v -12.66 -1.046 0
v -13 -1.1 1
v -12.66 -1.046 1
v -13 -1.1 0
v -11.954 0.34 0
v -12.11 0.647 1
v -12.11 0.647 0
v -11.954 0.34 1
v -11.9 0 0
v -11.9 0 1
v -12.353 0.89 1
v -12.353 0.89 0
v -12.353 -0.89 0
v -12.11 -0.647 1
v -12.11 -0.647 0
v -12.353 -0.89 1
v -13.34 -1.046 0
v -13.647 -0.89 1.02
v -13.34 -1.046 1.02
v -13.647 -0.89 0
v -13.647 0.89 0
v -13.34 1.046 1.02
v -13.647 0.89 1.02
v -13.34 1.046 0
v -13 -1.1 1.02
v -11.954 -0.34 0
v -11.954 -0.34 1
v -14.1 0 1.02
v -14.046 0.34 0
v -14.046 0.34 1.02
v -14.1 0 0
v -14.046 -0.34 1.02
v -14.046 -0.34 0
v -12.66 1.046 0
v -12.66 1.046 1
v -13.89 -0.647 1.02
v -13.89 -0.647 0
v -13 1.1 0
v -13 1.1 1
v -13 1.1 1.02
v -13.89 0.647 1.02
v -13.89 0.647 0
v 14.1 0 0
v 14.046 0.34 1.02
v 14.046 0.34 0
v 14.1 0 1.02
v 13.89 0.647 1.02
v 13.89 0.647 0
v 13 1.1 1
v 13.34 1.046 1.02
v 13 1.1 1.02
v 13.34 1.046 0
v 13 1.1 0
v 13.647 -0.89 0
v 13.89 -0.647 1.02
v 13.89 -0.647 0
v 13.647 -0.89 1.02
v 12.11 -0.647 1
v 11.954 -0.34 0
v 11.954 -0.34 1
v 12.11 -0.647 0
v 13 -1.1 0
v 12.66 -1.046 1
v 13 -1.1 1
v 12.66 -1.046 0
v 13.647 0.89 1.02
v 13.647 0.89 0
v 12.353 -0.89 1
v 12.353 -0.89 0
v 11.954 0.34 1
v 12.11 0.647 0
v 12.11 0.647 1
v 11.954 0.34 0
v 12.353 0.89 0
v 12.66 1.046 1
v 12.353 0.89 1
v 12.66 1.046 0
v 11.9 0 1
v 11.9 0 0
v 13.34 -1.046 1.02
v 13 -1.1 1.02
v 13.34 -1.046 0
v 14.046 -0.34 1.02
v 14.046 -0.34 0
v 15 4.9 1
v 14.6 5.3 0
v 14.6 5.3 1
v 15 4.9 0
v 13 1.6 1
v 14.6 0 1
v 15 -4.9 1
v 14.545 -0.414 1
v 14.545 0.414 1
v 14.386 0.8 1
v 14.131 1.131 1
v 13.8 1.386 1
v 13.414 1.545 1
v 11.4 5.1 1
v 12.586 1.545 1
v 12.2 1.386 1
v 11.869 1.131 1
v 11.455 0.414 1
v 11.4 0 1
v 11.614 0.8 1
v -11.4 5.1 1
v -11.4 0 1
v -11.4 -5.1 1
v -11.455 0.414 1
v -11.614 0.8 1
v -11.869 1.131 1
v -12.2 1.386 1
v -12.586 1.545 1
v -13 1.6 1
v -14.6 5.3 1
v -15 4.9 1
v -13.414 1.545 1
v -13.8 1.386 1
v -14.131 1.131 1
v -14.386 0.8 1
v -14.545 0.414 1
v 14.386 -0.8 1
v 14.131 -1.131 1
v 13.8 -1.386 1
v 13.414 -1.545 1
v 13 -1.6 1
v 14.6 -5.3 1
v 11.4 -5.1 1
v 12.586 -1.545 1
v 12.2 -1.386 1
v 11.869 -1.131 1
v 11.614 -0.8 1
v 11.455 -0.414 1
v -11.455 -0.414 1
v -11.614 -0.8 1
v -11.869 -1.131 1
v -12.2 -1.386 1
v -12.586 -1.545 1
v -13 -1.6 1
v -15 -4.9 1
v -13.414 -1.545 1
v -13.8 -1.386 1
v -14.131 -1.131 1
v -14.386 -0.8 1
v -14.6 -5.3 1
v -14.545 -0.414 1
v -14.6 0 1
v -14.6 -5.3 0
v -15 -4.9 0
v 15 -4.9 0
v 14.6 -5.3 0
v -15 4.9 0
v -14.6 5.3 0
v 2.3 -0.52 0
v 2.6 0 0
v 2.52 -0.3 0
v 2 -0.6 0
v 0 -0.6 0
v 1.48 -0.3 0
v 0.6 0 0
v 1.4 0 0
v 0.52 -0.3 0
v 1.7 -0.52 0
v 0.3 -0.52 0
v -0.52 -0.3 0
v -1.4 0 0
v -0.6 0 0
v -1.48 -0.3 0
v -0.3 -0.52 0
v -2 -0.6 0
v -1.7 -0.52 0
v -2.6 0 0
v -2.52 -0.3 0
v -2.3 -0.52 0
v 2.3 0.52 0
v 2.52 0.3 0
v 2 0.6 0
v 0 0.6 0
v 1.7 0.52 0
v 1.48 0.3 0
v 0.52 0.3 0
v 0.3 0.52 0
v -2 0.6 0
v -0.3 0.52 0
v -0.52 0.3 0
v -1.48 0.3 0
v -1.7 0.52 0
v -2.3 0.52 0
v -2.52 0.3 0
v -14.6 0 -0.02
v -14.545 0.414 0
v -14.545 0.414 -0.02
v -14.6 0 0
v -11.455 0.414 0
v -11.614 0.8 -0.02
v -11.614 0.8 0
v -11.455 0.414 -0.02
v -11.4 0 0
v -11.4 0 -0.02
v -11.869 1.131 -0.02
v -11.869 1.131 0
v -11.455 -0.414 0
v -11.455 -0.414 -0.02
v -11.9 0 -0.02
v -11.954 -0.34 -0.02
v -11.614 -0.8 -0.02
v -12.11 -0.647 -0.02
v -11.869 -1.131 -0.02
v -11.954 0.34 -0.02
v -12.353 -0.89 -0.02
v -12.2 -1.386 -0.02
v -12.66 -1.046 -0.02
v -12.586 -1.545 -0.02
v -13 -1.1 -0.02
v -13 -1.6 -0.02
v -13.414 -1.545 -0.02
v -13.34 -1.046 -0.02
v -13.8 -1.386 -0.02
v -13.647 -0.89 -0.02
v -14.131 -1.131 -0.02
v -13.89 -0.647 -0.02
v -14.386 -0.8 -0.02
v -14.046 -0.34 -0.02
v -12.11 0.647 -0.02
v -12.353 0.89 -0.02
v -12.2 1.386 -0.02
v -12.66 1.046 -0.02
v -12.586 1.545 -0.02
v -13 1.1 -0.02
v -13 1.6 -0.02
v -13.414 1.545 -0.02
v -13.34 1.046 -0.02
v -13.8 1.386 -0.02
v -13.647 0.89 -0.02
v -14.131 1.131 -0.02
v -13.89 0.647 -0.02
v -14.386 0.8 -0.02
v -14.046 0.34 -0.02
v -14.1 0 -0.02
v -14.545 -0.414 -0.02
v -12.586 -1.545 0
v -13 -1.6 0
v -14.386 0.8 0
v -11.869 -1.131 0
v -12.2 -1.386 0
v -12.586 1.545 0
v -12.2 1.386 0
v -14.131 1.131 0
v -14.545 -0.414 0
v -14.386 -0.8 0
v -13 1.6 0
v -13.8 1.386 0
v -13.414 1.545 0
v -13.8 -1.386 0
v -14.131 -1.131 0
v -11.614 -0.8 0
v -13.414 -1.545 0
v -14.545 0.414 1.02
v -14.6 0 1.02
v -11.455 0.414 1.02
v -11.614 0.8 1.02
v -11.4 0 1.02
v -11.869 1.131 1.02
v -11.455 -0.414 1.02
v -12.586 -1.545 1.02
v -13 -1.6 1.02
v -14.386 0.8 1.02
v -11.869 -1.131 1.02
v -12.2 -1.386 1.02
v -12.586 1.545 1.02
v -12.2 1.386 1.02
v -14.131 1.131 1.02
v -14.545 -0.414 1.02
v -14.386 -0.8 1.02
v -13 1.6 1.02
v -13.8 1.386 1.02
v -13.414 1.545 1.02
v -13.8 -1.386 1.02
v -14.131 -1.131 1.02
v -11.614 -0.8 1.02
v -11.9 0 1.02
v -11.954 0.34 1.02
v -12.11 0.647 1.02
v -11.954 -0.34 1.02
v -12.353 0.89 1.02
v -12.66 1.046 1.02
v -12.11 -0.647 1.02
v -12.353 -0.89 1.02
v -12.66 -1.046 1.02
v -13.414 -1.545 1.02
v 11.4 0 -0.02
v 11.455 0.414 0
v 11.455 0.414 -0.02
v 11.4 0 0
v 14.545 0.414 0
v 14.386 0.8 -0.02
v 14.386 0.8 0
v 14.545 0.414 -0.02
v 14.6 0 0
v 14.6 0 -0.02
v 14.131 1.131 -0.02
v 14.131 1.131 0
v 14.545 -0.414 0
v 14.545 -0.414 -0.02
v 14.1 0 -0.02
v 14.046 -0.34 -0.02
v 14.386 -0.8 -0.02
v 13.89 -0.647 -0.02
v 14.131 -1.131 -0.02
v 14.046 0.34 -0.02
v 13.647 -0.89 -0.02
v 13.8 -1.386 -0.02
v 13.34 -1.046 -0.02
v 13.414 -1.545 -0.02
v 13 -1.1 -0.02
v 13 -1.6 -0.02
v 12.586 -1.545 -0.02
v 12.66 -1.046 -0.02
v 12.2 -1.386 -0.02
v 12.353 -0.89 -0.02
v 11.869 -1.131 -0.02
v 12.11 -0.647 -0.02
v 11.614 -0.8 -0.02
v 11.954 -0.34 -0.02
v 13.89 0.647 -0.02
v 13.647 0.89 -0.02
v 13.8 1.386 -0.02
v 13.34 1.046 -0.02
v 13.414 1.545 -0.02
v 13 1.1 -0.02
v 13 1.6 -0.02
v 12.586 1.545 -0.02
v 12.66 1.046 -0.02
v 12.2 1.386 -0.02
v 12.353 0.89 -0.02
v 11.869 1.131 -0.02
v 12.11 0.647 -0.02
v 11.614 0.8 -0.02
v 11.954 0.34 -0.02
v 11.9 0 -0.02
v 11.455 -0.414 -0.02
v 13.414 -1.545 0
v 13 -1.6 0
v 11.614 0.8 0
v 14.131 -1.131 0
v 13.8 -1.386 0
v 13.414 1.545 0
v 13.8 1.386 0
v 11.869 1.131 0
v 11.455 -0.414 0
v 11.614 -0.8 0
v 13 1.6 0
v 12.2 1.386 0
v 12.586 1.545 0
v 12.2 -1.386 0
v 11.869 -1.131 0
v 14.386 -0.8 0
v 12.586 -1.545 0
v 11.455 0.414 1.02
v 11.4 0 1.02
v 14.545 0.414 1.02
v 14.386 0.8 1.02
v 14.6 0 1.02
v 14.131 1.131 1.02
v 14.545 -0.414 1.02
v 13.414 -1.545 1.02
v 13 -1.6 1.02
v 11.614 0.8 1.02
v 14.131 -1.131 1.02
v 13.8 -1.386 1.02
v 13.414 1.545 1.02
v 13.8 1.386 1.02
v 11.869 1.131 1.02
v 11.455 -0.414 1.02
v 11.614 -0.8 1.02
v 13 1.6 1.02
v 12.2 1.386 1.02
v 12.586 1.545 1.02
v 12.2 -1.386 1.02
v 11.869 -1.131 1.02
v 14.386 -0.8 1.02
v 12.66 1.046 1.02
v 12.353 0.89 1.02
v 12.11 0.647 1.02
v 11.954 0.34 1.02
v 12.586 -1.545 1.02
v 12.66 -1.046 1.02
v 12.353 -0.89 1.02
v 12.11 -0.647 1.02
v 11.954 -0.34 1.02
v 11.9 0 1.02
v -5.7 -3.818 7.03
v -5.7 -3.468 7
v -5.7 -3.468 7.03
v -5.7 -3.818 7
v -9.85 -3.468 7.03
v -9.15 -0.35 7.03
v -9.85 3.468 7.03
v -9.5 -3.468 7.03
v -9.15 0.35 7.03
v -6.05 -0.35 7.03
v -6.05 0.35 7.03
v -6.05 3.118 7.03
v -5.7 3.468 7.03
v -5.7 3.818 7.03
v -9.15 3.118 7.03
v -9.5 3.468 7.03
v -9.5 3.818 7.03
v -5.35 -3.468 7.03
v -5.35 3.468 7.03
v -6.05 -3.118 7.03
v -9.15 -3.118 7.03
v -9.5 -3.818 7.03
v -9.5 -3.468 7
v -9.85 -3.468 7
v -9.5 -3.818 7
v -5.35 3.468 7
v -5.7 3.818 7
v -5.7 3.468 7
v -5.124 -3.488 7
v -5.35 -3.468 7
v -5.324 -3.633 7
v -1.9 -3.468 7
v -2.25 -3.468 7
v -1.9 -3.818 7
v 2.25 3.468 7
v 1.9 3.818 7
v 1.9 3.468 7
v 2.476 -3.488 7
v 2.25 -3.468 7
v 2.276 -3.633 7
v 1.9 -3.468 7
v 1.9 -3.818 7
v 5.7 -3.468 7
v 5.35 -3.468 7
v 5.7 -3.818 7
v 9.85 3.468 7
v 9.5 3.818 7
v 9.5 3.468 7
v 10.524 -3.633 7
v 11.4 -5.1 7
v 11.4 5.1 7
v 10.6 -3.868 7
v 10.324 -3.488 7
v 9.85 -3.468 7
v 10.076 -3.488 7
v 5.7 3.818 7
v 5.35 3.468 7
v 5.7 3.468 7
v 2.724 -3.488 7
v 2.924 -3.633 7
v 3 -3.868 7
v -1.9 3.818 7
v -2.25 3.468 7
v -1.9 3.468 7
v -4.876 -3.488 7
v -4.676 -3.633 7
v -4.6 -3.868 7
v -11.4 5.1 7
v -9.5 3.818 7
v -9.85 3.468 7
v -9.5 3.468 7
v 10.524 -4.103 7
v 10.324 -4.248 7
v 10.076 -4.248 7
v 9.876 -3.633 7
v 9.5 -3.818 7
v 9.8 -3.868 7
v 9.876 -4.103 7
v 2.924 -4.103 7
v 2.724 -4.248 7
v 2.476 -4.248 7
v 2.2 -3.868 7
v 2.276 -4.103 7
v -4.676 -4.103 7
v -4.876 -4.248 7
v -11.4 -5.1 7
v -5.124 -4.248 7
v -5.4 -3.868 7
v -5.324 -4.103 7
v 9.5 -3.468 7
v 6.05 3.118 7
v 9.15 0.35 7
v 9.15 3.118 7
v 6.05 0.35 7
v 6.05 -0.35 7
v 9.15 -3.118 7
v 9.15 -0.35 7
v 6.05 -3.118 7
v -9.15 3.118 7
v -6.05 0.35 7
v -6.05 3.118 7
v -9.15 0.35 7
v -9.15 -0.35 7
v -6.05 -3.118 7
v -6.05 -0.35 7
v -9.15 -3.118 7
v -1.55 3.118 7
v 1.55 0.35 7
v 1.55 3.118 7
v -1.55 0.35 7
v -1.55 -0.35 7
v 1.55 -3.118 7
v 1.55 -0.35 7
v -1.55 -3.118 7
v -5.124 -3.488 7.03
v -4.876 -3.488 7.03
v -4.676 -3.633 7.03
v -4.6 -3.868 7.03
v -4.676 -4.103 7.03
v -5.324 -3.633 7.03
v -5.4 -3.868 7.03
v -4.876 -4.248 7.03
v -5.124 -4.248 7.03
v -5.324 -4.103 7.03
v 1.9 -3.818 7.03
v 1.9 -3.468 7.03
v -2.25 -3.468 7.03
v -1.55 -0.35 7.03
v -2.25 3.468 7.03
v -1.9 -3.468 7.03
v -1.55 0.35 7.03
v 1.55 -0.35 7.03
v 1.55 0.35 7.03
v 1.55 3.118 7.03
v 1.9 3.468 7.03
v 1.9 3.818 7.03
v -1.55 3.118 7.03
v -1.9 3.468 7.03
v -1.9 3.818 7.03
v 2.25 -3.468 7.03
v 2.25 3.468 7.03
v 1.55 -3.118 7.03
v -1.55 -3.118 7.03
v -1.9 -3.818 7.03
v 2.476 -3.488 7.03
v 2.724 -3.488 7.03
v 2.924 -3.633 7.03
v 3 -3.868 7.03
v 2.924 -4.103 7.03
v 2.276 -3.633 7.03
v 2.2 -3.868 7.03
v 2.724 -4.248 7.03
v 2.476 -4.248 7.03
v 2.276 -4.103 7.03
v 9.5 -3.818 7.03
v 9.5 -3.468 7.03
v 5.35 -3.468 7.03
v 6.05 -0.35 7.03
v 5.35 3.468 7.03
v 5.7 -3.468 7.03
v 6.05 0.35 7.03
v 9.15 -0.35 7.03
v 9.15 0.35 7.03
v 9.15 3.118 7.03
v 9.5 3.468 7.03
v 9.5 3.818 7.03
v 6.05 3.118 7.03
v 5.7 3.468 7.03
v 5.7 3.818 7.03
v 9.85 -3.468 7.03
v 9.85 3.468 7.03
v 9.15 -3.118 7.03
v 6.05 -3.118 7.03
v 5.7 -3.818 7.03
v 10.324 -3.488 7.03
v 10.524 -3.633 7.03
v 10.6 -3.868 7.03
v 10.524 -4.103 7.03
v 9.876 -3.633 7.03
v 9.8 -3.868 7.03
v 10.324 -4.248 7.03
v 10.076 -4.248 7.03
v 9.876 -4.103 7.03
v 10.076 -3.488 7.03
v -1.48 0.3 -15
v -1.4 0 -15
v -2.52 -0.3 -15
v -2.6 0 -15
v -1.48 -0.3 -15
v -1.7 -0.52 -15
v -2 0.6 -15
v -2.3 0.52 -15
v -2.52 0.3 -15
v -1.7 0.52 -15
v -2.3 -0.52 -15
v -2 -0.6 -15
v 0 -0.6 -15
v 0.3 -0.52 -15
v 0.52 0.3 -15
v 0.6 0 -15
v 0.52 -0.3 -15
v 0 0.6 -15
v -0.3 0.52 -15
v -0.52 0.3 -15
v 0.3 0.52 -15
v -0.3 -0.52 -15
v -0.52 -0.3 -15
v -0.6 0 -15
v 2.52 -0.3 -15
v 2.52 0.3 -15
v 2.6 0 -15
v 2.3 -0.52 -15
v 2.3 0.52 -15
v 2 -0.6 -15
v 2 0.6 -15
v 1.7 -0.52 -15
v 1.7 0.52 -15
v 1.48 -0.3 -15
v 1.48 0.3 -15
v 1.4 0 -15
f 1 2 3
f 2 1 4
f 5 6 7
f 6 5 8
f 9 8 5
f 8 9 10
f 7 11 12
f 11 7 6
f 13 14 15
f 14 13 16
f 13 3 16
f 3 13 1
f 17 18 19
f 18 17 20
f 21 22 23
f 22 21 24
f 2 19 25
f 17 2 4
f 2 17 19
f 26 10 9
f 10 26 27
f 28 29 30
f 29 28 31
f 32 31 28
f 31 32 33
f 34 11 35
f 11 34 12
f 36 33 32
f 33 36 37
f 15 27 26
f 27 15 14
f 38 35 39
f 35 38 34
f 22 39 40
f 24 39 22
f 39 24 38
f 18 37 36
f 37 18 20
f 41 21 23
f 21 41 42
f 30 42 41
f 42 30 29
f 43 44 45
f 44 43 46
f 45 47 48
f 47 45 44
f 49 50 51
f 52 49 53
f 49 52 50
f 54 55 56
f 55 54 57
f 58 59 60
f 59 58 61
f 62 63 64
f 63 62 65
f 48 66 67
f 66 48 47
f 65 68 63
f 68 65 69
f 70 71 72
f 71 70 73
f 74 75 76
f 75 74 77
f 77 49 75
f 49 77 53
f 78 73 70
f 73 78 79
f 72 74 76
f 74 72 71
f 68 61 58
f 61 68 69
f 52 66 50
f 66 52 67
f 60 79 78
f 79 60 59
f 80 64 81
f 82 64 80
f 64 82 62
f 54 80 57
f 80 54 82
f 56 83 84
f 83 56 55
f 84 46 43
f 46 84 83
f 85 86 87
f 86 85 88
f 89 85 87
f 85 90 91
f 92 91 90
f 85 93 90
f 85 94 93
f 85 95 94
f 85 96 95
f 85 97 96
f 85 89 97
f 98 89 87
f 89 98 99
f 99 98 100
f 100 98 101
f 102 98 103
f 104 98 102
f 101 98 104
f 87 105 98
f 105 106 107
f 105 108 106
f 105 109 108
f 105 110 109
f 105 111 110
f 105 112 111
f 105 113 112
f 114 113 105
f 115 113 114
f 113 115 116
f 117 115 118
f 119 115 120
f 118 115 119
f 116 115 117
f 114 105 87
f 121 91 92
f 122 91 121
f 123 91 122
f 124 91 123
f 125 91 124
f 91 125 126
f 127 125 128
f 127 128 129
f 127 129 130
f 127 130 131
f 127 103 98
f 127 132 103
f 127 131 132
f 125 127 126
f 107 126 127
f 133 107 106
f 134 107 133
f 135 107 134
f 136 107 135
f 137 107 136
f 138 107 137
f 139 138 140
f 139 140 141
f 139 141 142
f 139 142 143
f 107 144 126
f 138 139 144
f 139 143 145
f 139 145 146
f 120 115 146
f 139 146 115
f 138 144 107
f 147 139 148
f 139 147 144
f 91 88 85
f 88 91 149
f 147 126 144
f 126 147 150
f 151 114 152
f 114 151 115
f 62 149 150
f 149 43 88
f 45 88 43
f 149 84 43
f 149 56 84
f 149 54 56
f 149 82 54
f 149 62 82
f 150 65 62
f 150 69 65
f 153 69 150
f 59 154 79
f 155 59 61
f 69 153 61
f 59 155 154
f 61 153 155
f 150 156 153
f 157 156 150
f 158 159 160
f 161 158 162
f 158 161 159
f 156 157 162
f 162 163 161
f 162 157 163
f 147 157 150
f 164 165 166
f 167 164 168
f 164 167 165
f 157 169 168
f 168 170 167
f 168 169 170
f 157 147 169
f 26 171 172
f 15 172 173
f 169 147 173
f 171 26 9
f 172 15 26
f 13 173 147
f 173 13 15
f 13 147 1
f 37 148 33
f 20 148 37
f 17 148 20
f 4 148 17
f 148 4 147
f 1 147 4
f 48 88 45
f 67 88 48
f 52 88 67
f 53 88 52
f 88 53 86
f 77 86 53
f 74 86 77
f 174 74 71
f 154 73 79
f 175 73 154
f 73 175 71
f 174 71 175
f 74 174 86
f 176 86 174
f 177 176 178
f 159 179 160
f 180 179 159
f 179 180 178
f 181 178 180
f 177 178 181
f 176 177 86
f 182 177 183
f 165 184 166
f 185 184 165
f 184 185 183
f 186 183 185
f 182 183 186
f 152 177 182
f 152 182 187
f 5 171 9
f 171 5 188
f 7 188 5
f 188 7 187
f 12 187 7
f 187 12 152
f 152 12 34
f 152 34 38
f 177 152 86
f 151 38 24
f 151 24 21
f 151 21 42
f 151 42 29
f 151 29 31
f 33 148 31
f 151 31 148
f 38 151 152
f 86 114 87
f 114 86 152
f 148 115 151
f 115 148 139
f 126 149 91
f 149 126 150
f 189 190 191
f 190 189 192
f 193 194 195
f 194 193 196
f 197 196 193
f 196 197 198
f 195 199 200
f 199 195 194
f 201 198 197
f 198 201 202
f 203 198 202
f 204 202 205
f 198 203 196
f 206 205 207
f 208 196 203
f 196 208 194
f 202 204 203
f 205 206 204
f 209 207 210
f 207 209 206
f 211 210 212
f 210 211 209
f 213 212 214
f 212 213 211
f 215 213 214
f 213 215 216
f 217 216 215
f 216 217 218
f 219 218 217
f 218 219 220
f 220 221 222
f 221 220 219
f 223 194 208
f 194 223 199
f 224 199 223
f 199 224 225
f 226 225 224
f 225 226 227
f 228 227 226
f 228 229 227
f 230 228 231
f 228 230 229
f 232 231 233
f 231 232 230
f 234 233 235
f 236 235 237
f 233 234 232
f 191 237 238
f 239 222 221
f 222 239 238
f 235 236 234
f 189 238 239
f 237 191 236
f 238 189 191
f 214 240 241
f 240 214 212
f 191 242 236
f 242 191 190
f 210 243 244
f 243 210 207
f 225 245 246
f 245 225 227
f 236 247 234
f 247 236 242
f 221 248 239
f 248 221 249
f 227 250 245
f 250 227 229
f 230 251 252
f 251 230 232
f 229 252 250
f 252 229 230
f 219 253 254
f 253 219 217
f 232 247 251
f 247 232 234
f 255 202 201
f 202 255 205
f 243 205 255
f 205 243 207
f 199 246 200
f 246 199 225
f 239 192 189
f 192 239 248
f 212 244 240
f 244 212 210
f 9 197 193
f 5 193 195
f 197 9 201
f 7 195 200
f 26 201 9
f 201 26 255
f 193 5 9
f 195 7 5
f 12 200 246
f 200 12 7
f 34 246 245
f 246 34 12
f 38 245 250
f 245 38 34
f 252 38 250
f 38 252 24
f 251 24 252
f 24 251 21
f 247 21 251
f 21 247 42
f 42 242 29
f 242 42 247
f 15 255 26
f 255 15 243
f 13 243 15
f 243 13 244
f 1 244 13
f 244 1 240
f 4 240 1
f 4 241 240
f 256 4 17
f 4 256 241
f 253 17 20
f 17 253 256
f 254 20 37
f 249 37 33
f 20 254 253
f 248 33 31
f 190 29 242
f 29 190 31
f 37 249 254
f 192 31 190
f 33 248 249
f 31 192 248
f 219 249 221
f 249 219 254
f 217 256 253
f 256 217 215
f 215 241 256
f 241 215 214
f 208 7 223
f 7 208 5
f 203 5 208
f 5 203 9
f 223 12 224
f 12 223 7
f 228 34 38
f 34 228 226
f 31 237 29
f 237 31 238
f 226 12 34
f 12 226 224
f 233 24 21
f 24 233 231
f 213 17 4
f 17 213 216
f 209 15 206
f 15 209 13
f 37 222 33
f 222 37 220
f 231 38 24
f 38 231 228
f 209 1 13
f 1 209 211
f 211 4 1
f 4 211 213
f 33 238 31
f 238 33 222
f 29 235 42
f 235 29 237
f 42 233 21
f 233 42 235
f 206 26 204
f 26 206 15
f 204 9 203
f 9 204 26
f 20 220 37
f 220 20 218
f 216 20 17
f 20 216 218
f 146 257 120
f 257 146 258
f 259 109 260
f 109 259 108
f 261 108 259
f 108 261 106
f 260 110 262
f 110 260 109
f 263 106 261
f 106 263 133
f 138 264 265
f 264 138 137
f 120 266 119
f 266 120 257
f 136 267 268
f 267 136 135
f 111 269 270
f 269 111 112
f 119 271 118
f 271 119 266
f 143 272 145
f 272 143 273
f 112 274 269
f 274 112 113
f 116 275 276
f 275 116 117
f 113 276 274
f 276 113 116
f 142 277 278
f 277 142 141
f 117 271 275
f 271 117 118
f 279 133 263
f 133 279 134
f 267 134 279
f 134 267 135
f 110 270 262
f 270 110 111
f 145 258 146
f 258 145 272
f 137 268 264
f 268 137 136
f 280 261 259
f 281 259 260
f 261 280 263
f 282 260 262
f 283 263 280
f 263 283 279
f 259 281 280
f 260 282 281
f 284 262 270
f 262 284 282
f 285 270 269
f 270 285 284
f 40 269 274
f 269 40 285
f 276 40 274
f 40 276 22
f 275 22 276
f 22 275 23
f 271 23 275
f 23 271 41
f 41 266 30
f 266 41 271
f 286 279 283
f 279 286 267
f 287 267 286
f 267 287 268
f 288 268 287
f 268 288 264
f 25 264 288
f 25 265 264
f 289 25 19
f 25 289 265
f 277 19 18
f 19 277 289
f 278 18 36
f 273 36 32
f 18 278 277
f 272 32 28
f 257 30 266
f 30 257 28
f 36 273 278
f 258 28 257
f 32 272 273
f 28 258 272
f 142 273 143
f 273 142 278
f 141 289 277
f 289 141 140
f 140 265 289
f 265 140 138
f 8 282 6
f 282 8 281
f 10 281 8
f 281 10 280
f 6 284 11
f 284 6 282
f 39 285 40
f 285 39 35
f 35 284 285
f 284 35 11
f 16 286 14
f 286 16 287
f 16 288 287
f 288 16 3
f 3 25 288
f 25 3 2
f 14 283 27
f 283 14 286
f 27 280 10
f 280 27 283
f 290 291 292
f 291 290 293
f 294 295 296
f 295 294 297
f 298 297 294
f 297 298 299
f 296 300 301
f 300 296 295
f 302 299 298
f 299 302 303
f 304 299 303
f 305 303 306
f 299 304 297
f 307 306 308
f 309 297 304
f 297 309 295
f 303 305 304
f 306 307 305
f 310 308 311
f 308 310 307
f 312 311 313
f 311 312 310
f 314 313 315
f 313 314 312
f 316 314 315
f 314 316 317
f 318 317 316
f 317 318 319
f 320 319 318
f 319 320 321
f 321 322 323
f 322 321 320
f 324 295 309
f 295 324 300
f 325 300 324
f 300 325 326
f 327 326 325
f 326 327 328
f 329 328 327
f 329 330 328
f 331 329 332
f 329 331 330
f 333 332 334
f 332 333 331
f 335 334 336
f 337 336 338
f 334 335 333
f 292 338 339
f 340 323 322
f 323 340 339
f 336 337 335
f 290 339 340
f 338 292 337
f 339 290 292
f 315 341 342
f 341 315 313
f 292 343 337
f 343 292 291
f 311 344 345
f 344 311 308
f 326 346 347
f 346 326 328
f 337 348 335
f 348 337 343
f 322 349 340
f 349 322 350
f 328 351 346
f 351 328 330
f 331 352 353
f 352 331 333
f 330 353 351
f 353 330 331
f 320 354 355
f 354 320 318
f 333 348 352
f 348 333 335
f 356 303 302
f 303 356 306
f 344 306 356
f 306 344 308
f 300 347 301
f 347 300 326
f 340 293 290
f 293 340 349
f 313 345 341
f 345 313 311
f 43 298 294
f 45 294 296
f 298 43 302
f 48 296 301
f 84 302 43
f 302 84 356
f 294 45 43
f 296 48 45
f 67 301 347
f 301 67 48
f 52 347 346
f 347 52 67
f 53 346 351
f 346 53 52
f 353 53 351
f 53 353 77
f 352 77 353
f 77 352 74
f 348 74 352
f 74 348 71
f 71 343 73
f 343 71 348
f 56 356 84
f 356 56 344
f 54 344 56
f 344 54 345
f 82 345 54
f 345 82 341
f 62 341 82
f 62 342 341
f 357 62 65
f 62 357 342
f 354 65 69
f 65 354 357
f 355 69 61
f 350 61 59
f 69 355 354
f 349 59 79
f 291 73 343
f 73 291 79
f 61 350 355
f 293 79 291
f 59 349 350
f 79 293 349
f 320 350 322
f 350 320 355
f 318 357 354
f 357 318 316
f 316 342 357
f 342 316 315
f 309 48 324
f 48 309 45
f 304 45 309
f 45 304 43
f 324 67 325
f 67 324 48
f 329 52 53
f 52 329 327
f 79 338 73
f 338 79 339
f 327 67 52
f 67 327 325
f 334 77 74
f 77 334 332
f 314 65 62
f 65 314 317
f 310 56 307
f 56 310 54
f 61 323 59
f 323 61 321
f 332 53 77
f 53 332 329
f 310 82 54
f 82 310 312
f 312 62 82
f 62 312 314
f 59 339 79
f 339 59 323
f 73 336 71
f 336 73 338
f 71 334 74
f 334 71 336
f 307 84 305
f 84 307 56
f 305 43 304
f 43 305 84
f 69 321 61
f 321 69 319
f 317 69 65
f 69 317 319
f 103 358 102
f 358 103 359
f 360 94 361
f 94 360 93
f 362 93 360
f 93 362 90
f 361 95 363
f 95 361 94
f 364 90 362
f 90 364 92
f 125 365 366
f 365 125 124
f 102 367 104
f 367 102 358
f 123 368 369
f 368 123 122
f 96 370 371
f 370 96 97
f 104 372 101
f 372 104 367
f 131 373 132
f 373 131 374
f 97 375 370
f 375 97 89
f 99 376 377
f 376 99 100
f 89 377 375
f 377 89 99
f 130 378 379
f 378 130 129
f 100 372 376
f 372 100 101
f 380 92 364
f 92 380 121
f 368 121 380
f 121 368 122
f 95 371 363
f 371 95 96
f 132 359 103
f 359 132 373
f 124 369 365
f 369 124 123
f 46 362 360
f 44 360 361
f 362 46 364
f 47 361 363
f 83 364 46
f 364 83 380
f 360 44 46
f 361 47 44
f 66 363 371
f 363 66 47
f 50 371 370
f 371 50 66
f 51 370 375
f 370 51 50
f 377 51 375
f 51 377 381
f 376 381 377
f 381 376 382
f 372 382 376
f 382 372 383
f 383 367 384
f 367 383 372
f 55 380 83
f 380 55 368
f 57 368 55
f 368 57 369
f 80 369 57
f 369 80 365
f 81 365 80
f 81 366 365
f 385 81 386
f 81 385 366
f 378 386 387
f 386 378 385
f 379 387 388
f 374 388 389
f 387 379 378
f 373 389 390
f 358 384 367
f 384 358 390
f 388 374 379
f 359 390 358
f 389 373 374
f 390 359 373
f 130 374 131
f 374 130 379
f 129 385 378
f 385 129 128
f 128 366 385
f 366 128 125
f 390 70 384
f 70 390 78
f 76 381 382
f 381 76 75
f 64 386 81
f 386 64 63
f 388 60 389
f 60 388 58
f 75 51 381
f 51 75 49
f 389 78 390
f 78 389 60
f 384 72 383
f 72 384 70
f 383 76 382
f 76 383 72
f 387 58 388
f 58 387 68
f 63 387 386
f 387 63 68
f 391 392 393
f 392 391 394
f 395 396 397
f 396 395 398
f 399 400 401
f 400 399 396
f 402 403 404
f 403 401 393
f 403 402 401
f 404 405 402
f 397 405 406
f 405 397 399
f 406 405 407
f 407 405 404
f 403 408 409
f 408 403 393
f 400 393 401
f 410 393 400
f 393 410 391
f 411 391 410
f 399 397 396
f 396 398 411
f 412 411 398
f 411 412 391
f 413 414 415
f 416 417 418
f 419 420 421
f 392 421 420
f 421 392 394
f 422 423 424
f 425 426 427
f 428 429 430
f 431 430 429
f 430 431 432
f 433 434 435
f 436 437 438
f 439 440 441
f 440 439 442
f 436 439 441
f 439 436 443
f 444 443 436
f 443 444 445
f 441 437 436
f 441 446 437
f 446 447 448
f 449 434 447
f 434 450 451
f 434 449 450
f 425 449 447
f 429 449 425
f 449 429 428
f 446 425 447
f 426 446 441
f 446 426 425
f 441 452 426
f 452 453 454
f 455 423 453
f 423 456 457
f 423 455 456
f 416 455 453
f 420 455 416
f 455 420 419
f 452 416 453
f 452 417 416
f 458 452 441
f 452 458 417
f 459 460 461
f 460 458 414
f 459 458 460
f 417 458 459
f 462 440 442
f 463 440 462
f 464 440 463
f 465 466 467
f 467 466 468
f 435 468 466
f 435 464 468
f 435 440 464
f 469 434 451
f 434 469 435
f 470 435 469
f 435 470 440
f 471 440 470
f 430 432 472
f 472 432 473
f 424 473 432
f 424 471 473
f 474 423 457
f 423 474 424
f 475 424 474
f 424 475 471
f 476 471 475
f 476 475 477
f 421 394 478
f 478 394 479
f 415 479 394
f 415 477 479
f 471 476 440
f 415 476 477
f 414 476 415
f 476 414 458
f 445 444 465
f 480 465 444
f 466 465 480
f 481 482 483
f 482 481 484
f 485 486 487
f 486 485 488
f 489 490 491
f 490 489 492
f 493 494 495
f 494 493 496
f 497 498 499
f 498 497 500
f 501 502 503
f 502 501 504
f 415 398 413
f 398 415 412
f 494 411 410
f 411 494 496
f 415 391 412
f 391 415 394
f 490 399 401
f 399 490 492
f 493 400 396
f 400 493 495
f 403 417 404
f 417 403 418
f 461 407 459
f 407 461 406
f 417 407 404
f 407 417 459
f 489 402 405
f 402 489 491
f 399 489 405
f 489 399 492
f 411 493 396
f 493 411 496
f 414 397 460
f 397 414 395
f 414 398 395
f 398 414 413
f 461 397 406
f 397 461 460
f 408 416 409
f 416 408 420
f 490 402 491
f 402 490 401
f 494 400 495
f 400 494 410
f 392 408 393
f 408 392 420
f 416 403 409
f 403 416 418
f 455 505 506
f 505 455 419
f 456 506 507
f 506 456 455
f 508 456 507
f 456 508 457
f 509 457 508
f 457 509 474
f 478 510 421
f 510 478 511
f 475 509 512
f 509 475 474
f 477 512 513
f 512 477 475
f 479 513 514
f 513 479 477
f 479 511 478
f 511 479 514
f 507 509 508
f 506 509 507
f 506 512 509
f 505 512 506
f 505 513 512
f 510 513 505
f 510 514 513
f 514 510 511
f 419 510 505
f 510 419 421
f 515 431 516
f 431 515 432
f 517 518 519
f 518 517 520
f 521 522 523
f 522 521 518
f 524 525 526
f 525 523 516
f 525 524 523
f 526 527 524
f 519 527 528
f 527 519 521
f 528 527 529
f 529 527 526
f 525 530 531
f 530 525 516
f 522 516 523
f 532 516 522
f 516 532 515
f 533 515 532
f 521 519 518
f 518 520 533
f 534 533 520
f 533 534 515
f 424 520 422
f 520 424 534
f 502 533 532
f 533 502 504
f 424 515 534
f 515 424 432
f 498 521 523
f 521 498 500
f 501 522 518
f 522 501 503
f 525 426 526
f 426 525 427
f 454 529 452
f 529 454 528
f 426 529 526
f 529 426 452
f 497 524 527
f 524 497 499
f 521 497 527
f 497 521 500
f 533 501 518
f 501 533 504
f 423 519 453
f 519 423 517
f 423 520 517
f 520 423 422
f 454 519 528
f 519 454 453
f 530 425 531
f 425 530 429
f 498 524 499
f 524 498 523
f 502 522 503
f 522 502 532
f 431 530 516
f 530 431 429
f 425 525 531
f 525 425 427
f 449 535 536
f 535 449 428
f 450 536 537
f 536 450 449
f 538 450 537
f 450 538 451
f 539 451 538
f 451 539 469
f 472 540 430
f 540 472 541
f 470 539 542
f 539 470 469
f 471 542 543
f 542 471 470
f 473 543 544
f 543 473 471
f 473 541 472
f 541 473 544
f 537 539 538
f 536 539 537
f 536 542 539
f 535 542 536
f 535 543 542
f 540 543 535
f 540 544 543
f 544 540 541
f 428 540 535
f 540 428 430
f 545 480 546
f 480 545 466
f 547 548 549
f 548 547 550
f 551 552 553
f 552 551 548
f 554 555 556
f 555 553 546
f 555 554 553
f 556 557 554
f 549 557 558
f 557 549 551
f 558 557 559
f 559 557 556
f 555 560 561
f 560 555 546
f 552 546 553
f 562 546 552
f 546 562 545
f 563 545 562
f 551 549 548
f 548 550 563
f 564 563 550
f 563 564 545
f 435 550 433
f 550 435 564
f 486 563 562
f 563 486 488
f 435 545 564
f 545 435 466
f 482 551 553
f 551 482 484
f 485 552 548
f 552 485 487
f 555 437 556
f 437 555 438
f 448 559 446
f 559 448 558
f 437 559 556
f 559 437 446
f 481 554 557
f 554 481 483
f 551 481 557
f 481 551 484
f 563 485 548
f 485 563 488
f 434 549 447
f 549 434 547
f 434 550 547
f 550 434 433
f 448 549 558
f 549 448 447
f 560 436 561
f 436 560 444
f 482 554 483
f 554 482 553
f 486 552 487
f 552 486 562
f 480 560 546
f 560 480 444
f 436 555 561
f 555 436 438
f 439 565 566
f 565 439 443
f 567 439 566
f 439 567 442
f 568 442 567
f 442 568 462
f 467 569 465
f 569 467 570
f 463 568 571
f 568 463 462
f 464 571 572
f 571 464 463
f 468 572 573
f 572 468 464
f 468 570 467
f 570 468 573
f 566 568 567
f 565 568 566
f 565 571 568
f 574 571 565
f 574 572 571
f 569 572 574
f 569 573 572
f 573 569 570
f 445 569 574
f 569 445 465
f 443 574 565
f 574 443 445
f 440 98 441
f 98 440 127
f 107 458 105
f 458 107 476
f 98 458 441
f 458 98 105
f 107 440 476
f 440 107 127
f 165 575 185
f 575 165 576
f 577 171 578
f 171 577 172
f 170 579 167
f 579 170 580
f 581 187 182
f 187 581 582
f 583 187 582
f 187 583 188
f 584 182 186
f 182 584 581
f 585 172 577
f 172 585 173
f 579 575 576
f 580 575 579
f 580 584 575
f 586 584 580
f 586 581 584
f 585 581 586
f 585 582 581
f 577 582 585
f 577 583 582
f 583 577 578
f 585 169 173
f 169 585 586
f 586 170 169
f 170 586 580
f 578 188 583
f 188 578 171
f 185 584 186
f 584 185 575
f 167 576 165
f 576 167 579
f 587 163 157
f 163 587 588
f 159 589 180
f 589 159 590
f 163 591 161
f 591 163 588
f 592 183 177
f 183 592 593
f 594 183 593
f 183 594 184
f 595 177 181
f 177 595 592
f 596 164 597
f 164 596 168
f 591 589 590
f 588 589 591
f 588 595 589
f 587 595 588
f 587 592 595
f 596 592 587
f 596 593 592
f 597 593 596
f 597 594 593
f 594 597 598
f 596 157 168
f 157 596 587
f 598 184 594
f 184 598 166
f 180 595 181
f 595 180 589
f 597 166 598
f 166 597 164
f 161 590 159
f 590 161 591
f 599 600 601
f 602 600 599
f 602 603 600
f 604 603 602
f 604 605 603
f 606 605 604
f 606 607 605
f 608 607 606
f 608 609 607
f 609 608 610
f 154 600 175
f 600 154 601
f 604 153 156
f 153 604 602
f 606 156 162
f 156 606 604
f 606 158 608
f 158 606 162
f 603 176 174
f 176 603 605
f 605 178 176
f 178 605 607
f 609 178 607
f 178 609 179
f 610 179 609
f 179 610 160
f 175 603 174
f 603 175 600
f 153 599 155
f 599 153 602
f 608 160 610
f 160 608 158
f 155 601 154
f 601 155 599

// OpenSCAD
// file: ../../lib/display.scad
// partbin - shared pieces for display modules: glass panels, LED matrix
// blocks, 7-segment displays, the LCD1602 frame, a window cutout for the
// case and a holder that grips a board by its edges.
//
//   use <../lib/display.scad>
//
// Same convention as every module: parts up (the display faces +z), the
// board centred on x/y, its underside at z = 0.

use <parts.scad>

function c_glass() = [0.04, 0.04, 0.06];
function c_screen() = [0.08, 0.10, 0.16];

// ------------------------------------------------------------ glass panel
// A TFT/OLED glass panel lying on the board: outline [x, y], thickness t,
// with the active (lit) area [x, y] centred at `off` from the panel centre.
module glass_panel(outline, t = 2.4, active, off = [0, 0]) {
    color(c_glass()) translate([-outline[0] / 2, -outline[1] / 2, 0]) cube([outline[0], outline[1], t]);
    color(c_screen()) translate([off[0] - active[0] / 2, off[1] - active[1] / 2, t]) cube([active[0], active[1], 0.02]);
}

// ------------------------------------------------------------- LED matrix
// An 8 x 8 LED matrix block (1088AS-style): `size` square, h tall, with
// the 64 round LEDs on top.
module led_matrix(size = 32, h = 7, led = [0.55, 0.06, 0.06], body = [0.12, 0.12, 0.12]) {
    p = size / 8;
    color(body) translate([-size / 2, -size / 2, 0]) cube([size, size, h]);
    color(led) for (i = [0:7], j = [0:7])
        translate([-size / 2 + p / 2 + i * p, -size / 2 + p / 2 + j * p, h]) cylinder(d = p * 0.75, h = 0.05, $fn = 16);
}

// ------------------------------------------------------- 7-segment digits
// A block of `digits` 7-segment digits, `size` [x, y], h tall.
module seg7_display(digits = 4, size = [30, 14], h = 7.2, colon = true) {
    color([0.92, 0.92, 0.92]) translate([-size[0] / 2, -size[1] / 2, 0]) cube([size[0], size[1], h - 0.05]);
    color([0.12, 0.12, 0.12]) translate([-size[0] / 2, -size[1] / 2, h - 0.05]) cube([size[0], size[1], 0.05]);
    dw = size[0] / digits;
    sh = size[1] * 0.68;  sw = dw * 0.5;  st = 0.7;
    color([0.35, 0.05, 0.05]) for (d = [0:digits - 1]) translate([-size[0] / 2 + dw * (d + 0.5), 0, h]) {
        for (y = [-1, 0, 1]) translate([-sw / 2, y * sh / 2 - st / 2, 0]) cube([sw, st, 0.03]);       // a g d
        for (x = [-1, 1], y = [-1, 1]) translate([x * sw / 2 - st / 2, y < 0 ? -sh / 2 : 0, 0]) cube([st, sh / 2, 0.03]);
        translate([sw / 2 + 0.7, -sh / 2 - 0.4, 0]) cylinder(d = 0.8, h = 0.03, $fn = 10);         // dot
    }
    if (colon) color([0.35, 0.05, 0.05]) for (y = [-1.6, 1.6]) translate([0, y, h]) cylinder(d = 0.8, h = 0.03, $fn = 10);
}

// ----------------------------------------------------------------- windows
// A rectangular window in the lid above a display. The lid's inside face is
// at z0 and it is `depth` thick; `size` [x, y] is the opening at the inside,
// and it widens outwards by `flare` mm on each side (0 = straight walls).
module rect_window(x, y, z0, depth, size, flare = 0, r = 0.5) {
    translate([x, y, z0 - 0.5]) hull() {
        linear_extrude(0.01) offset(r) offset(-r) square(size, center = true);
        translate([0, 0, depth + 1.0]) linear_extrude(0.01)
            offset(r + flare * (depth + 1) / depth) offset(-r) square(size, center = true);
    }
}

// ----------------------------------------------------------------- holder
// For boards without mounting holes: a ledge under the board's edges (`h`
// tall, so parts underneath have room), low walls around it with gaps to
// get a fingernail in, and `top` mm of wall above the board's top.
// The display is meant to be pressed against the lid from behind, so the
// walls only locate it. Add it to the case floor.
module edge_holder(size, t, h = 6, ledge = 1.5, wall = 1.2, clear = 0.3, top = 0.8) {
    x0 = size[0] / 2 + clear;  y0 = size[1] / 2 + clear;
    difference() {
        translate([-x0 - wall, -y0 - wall, -h]) cube([2 * (x0 + wall), 2 * (y0 + wall), h + t + top]);
        // room for the board
        translate([-x0, -y0, 0]) cube([2 * x0, 2 * y0, t + top + 1]);
        // room under it, inside the ledge
        translate([-x0 + ledge, -y0 + ledge, -h - 1]) cube([2 * (x0 - ledge), 2 * (y0 - ledge), h + 2]);
        // fingernail gaps in the middle of each side, down to the board's underside
        for (a = [0, 90]) rotate([0, 0, a]) {
            g = min(8, (a == 0 ? size[0] : size[1]) / 4);
            translate([-g / 2, -50, 0]) cube([g, 100, t + top + 1]);
        }
    }
}

// --------------------------------------------------------------- SD socket
// A push-push microSD socket (metal), its opening towards -y.
module microsd_socket() {
    color(c_tin()) translate([-7, -7.5, 0]) cube([14, 15, 1.8]);
    color(c_plastic()) translate([-5.5, -7.6, 0.3]) cube([11, 0.2, 1.2]);
}
// file: ../../lib/breakout.scad
// partbin - shared pieces for small breakout boards: a PCB with mounting
// holes and a row of pins, pin headers, mounts, and cutouts for sensors.
//
//   use <../lib/breakout.scad>
//
// Same convention as every module: parts up, the board centred on x/y, its
// underside at z = 0. The pin row runs along x.

use <parts.scad>

// ------------------------------------------------------------------- board
// size [x, y], t thickness, r corner radius.
// holes: [[x, y], ...] mounting holes, hole_d drill, ring_d copper ring (0 = none).
// pins: n pins, 2.54 mm apart, centred on x = pins_x, at y = pins_y.
module bo_pcb(size, t = 1.6, r = 0.5, holes = [], hole_d = 3.0, ring_d = 0,
              n = 4, pins_x = 0, pins_y = 0, color = [0.06, 0.30, 0.66]) {
    pcb(size, t, concat(
            [for (h = holes) [h[0], h[1], hole_d, ring_d]],
            [for (i = [0:n - 1]) [pins_x + (i - (n - 1) / 2) * 2.54, pins_y, 1.0, 1.7]]),
        color, r);
}

// Pin header soldered into the pin row: "down" (pins below the board, the
// usual way), "up", or "none".
module bo_headers(n, pins_x, pins_y, t, mode = "down") {
    if (mode == "down")
        translate([pins_x, pins_y, 0]) rotate([0, 0, 90]) mirror([0, 0, 1]) pin_header(n, below = t + 1.5);
    else if (mode == "up")
        translate([pins_x, pins_y, t]) rotate([0, 0, 90]) pin_header(n, below = t + 1.5);
}

// Text on the underside, readable from below.
module bo_under(x, y) translate([x, y, 0]) rotate([0, 180, 0]) children();

// -------------------------------------------------------------------- mounts
// Posts under the mounting holes, from z = -h up to the board's underside.
// style "peg": a pin goes up through the hole and the board presses on
//   (snug = how much smaller than the hole; 0.15 holds by friction).
// style "screw": a pilot hole for a self-tapping screw (screw_d).
// Add them to the case floor.
module bo_mounts(holes, hole_d, t, h = 3, style = "peg", wall = 1.4, snug = 0.15, screw_d = 0) {
    sd = screw_d > 0 ? screw_d : hole_d * 0.8;
    for (p = holes) translate([p[0], p[1], 0]) {
        difference() {
            translate([0, 0, -h]) cylinder(d = hole_d + 2 * wall, h = h, $fn = 40);
            if (style == "screw") translate([0, 0, -h + 0.8]) cylinder(d = sd, h = h, $fn = 24);
        }
        if (style == "peg") {
            pd = hole_d - snug;
            cylinder(d = pd, h = t + 0.3, $fn = 32);
            translate([0, 0, t + 0.3]) cylinder(d1 = pd, d2 = pd - 0.8, h = 0.4, $fn = 32);  // lead-in
        }
    }
}

// ------------------------------------------------------------------ cutouts
// For a sensor that looks up. The wall (or lid) above the board has its
// inside face at z0 and is `depth` thick.
//
// A round window over a light sensor, widening outwards by `flare` degrees
// so it sees a wide angle of the room.
module bo_window(x, y, z0, depth, d = 3, flare = 35) {
    translate([x, y, z0 - 0.5])
        cylinder(d1 = d, d2 = d + 2 * (depth + 1) * tan(flare), h = depth + 1.5, $fn = 40);
}

// Slots over a sensor that needs air (BME280): `area` [x, y] covered by
// slots along x, `slot` wide with `bar` between them.
module bo_vents(x, y, z0, depth, area = [8, 6], slot = 1.2, bar = 1.2) {
    n = max(1, floor((area[1] + bar) / (slot + bar)));
    span = n * slot + (n - 1) * bar;
    for (i = [0:n - 1])
        translate([x - area[0] / 2, y - span / 2 + i * (slot + bar), z0 - 0.5])
            hull() for (dx = [slot / 2, area[0] - slot / 2])
                translate([dx, slot / 2, 0]) cylinder(d = slot, h = depth + 1.5, $fn = 20);
}

// ---------------------------------------------------------------- demo scene
// The board on its mounts, standing on a piece of floor, with a piece of
// see-through lid above it holding the cutout. Used when a module file is
// opened on its own.
module bo_demo(size, mount_h, lid_z, lid_t = 2) {
    color("#d6a24a") translate([-size[0] / 2 - 3, -size[1] / 2 - 3, -mount_h - 1.6]) cube([size[0] + 6, size[1] + 6, 1.6]);
    children(0);                                        // board
    color("#d6a24a") children(1);                       // mounts
    color("#9aa3ab", 0.55) difference() {               // lid with the cutout
        translate([-size[0] / 2 - 3, -size[1] / 2 - 3, lid_z]) cube([size[0] + 6, size[1] + 6, lid_t]);
        children(2);
    }
}

// ------------------------------------------------------------- USB cutouts
// A hole for a USB socket in the wall it faces. The socket's front face is
// at `at` = [x, y], its centre `zc` above the board's underside, and it points
// in direction `rot` (0 = +y, 90 = -x, 180 = -y, 270 = +x). The wall's inside
// face is `gap` in front of the socket and it is `wall` thick. `size` is the
// socket's [width, height]; from the outside a wider recess (`plug`) leaves
// `lip` mm of wall so the cable's plug goes all the way in.
module bo_usb_cutout(at, zc, rot = 0, size = [8.94, 3.26], wall = 2, gap = 0, clear = 0.3,
                     plug = [12.4, 6.6], lip = 0.8) {
    module stadium(ww, hh) hull() for (m = [-1, 1]) translate([m * (ww - hh) / 2, 0]) circle(d = hh, $fn = 32);
    translate([at[0], at[1], zc]) rotate([0, 0, rot]) {
        translate([0, -0.5, 0]) rotate([-90, 0, 0]) linear_extrude(gap + wall + 1.5) stadium(size[0] + 2 * clear, size[1] + 2 * clear);
        if (lip < wall) translate([0, gap + lip, 0]) rotate([-90, 0, 0]) linear_extrude(wall - lip + 1) stadium(plug[0], plug[1]);
    }
}
// main file
// 0.28" 3-digit LED voltmeter, DC 0-100 V, 3 wires (red: power, yellow:
// measure, black: GND). A small green board with the display and a mounting
// ear with a hole at each end. Sold in red, green, blue and other colours.
//
//   use <partbin/power/voltmeter_028/voltmeter_028.scad>
//
//   voltmeter_028();                     the meter (red digits)
//   voltmeter_028(seg = "green");
//   voltmeter_028_panel_cutout(wall)     the window for a front panel it sits behind
//   voltmeter_028_holder(h = 3);         two posts for its ears
//   voltmeter_028_size()                 [length with the ears, width, thickness]
//
// Where it sits: digits up, the meter centred on x = y = 0, the PCB's
// underside at z = 0, the long side along x. Typical sizes.

use <../../lib/parts.scad>
use <../../lib/breakout.scad>
use <../../lib/display.scad>

// ------------------------------------------------------------------- typical
b_l      = 30.0;    // with the ears
b_w      = 10.6;
b_t      = 1.0;
body     = [22.8, 10.2];
body_h   = 6.0;
ear_hole = [13.0, 0];
hole_d   = 2.2;

function voltmeter_028_size() = [b_l, b_w, b_t + body_h];

module voltmeter_028(seg = "red") {
    pcb([b_l, b_w], b_t, [for (s = [-1, 1]) [s * ear_hole[0], 0, hole_d, 3.2]], [0.20, 0.60, 0.30], 0.4);
    translate([0, 0, b_t]) seg7_display(3, body, body_h, false, seg7_color(seg));
    // the three wires leaving the back
    for (i = [0:2]) color(["red", "yellow", "black"][i]) translate([-2 + i * 2, 0, 0]) mirror([0, 0, 1]) cylinder(d = 1.2, h = 15, $fn = 12);
}

// The window for the digits in a front panel `wall` thick that touches the
// meter's face (or set `gap`).
module voltmeter_028_panel_cutout(wall = 2, gap = 0, margin = 0.3) {
    rect_window(0, 0, b_t + body_h + gap, wall, [body[0] + 2 * margin, body[1] + 2 * margin], 0, 0.3);
}

module voltmeter_028_holder(h = 3, style = "screw") { bo_mounts([for (s = [-1, 1]) [s * ear_hole[0], 0]], hole_d, b_t, h, style); }

show = "demo";
voltmeter_028();
